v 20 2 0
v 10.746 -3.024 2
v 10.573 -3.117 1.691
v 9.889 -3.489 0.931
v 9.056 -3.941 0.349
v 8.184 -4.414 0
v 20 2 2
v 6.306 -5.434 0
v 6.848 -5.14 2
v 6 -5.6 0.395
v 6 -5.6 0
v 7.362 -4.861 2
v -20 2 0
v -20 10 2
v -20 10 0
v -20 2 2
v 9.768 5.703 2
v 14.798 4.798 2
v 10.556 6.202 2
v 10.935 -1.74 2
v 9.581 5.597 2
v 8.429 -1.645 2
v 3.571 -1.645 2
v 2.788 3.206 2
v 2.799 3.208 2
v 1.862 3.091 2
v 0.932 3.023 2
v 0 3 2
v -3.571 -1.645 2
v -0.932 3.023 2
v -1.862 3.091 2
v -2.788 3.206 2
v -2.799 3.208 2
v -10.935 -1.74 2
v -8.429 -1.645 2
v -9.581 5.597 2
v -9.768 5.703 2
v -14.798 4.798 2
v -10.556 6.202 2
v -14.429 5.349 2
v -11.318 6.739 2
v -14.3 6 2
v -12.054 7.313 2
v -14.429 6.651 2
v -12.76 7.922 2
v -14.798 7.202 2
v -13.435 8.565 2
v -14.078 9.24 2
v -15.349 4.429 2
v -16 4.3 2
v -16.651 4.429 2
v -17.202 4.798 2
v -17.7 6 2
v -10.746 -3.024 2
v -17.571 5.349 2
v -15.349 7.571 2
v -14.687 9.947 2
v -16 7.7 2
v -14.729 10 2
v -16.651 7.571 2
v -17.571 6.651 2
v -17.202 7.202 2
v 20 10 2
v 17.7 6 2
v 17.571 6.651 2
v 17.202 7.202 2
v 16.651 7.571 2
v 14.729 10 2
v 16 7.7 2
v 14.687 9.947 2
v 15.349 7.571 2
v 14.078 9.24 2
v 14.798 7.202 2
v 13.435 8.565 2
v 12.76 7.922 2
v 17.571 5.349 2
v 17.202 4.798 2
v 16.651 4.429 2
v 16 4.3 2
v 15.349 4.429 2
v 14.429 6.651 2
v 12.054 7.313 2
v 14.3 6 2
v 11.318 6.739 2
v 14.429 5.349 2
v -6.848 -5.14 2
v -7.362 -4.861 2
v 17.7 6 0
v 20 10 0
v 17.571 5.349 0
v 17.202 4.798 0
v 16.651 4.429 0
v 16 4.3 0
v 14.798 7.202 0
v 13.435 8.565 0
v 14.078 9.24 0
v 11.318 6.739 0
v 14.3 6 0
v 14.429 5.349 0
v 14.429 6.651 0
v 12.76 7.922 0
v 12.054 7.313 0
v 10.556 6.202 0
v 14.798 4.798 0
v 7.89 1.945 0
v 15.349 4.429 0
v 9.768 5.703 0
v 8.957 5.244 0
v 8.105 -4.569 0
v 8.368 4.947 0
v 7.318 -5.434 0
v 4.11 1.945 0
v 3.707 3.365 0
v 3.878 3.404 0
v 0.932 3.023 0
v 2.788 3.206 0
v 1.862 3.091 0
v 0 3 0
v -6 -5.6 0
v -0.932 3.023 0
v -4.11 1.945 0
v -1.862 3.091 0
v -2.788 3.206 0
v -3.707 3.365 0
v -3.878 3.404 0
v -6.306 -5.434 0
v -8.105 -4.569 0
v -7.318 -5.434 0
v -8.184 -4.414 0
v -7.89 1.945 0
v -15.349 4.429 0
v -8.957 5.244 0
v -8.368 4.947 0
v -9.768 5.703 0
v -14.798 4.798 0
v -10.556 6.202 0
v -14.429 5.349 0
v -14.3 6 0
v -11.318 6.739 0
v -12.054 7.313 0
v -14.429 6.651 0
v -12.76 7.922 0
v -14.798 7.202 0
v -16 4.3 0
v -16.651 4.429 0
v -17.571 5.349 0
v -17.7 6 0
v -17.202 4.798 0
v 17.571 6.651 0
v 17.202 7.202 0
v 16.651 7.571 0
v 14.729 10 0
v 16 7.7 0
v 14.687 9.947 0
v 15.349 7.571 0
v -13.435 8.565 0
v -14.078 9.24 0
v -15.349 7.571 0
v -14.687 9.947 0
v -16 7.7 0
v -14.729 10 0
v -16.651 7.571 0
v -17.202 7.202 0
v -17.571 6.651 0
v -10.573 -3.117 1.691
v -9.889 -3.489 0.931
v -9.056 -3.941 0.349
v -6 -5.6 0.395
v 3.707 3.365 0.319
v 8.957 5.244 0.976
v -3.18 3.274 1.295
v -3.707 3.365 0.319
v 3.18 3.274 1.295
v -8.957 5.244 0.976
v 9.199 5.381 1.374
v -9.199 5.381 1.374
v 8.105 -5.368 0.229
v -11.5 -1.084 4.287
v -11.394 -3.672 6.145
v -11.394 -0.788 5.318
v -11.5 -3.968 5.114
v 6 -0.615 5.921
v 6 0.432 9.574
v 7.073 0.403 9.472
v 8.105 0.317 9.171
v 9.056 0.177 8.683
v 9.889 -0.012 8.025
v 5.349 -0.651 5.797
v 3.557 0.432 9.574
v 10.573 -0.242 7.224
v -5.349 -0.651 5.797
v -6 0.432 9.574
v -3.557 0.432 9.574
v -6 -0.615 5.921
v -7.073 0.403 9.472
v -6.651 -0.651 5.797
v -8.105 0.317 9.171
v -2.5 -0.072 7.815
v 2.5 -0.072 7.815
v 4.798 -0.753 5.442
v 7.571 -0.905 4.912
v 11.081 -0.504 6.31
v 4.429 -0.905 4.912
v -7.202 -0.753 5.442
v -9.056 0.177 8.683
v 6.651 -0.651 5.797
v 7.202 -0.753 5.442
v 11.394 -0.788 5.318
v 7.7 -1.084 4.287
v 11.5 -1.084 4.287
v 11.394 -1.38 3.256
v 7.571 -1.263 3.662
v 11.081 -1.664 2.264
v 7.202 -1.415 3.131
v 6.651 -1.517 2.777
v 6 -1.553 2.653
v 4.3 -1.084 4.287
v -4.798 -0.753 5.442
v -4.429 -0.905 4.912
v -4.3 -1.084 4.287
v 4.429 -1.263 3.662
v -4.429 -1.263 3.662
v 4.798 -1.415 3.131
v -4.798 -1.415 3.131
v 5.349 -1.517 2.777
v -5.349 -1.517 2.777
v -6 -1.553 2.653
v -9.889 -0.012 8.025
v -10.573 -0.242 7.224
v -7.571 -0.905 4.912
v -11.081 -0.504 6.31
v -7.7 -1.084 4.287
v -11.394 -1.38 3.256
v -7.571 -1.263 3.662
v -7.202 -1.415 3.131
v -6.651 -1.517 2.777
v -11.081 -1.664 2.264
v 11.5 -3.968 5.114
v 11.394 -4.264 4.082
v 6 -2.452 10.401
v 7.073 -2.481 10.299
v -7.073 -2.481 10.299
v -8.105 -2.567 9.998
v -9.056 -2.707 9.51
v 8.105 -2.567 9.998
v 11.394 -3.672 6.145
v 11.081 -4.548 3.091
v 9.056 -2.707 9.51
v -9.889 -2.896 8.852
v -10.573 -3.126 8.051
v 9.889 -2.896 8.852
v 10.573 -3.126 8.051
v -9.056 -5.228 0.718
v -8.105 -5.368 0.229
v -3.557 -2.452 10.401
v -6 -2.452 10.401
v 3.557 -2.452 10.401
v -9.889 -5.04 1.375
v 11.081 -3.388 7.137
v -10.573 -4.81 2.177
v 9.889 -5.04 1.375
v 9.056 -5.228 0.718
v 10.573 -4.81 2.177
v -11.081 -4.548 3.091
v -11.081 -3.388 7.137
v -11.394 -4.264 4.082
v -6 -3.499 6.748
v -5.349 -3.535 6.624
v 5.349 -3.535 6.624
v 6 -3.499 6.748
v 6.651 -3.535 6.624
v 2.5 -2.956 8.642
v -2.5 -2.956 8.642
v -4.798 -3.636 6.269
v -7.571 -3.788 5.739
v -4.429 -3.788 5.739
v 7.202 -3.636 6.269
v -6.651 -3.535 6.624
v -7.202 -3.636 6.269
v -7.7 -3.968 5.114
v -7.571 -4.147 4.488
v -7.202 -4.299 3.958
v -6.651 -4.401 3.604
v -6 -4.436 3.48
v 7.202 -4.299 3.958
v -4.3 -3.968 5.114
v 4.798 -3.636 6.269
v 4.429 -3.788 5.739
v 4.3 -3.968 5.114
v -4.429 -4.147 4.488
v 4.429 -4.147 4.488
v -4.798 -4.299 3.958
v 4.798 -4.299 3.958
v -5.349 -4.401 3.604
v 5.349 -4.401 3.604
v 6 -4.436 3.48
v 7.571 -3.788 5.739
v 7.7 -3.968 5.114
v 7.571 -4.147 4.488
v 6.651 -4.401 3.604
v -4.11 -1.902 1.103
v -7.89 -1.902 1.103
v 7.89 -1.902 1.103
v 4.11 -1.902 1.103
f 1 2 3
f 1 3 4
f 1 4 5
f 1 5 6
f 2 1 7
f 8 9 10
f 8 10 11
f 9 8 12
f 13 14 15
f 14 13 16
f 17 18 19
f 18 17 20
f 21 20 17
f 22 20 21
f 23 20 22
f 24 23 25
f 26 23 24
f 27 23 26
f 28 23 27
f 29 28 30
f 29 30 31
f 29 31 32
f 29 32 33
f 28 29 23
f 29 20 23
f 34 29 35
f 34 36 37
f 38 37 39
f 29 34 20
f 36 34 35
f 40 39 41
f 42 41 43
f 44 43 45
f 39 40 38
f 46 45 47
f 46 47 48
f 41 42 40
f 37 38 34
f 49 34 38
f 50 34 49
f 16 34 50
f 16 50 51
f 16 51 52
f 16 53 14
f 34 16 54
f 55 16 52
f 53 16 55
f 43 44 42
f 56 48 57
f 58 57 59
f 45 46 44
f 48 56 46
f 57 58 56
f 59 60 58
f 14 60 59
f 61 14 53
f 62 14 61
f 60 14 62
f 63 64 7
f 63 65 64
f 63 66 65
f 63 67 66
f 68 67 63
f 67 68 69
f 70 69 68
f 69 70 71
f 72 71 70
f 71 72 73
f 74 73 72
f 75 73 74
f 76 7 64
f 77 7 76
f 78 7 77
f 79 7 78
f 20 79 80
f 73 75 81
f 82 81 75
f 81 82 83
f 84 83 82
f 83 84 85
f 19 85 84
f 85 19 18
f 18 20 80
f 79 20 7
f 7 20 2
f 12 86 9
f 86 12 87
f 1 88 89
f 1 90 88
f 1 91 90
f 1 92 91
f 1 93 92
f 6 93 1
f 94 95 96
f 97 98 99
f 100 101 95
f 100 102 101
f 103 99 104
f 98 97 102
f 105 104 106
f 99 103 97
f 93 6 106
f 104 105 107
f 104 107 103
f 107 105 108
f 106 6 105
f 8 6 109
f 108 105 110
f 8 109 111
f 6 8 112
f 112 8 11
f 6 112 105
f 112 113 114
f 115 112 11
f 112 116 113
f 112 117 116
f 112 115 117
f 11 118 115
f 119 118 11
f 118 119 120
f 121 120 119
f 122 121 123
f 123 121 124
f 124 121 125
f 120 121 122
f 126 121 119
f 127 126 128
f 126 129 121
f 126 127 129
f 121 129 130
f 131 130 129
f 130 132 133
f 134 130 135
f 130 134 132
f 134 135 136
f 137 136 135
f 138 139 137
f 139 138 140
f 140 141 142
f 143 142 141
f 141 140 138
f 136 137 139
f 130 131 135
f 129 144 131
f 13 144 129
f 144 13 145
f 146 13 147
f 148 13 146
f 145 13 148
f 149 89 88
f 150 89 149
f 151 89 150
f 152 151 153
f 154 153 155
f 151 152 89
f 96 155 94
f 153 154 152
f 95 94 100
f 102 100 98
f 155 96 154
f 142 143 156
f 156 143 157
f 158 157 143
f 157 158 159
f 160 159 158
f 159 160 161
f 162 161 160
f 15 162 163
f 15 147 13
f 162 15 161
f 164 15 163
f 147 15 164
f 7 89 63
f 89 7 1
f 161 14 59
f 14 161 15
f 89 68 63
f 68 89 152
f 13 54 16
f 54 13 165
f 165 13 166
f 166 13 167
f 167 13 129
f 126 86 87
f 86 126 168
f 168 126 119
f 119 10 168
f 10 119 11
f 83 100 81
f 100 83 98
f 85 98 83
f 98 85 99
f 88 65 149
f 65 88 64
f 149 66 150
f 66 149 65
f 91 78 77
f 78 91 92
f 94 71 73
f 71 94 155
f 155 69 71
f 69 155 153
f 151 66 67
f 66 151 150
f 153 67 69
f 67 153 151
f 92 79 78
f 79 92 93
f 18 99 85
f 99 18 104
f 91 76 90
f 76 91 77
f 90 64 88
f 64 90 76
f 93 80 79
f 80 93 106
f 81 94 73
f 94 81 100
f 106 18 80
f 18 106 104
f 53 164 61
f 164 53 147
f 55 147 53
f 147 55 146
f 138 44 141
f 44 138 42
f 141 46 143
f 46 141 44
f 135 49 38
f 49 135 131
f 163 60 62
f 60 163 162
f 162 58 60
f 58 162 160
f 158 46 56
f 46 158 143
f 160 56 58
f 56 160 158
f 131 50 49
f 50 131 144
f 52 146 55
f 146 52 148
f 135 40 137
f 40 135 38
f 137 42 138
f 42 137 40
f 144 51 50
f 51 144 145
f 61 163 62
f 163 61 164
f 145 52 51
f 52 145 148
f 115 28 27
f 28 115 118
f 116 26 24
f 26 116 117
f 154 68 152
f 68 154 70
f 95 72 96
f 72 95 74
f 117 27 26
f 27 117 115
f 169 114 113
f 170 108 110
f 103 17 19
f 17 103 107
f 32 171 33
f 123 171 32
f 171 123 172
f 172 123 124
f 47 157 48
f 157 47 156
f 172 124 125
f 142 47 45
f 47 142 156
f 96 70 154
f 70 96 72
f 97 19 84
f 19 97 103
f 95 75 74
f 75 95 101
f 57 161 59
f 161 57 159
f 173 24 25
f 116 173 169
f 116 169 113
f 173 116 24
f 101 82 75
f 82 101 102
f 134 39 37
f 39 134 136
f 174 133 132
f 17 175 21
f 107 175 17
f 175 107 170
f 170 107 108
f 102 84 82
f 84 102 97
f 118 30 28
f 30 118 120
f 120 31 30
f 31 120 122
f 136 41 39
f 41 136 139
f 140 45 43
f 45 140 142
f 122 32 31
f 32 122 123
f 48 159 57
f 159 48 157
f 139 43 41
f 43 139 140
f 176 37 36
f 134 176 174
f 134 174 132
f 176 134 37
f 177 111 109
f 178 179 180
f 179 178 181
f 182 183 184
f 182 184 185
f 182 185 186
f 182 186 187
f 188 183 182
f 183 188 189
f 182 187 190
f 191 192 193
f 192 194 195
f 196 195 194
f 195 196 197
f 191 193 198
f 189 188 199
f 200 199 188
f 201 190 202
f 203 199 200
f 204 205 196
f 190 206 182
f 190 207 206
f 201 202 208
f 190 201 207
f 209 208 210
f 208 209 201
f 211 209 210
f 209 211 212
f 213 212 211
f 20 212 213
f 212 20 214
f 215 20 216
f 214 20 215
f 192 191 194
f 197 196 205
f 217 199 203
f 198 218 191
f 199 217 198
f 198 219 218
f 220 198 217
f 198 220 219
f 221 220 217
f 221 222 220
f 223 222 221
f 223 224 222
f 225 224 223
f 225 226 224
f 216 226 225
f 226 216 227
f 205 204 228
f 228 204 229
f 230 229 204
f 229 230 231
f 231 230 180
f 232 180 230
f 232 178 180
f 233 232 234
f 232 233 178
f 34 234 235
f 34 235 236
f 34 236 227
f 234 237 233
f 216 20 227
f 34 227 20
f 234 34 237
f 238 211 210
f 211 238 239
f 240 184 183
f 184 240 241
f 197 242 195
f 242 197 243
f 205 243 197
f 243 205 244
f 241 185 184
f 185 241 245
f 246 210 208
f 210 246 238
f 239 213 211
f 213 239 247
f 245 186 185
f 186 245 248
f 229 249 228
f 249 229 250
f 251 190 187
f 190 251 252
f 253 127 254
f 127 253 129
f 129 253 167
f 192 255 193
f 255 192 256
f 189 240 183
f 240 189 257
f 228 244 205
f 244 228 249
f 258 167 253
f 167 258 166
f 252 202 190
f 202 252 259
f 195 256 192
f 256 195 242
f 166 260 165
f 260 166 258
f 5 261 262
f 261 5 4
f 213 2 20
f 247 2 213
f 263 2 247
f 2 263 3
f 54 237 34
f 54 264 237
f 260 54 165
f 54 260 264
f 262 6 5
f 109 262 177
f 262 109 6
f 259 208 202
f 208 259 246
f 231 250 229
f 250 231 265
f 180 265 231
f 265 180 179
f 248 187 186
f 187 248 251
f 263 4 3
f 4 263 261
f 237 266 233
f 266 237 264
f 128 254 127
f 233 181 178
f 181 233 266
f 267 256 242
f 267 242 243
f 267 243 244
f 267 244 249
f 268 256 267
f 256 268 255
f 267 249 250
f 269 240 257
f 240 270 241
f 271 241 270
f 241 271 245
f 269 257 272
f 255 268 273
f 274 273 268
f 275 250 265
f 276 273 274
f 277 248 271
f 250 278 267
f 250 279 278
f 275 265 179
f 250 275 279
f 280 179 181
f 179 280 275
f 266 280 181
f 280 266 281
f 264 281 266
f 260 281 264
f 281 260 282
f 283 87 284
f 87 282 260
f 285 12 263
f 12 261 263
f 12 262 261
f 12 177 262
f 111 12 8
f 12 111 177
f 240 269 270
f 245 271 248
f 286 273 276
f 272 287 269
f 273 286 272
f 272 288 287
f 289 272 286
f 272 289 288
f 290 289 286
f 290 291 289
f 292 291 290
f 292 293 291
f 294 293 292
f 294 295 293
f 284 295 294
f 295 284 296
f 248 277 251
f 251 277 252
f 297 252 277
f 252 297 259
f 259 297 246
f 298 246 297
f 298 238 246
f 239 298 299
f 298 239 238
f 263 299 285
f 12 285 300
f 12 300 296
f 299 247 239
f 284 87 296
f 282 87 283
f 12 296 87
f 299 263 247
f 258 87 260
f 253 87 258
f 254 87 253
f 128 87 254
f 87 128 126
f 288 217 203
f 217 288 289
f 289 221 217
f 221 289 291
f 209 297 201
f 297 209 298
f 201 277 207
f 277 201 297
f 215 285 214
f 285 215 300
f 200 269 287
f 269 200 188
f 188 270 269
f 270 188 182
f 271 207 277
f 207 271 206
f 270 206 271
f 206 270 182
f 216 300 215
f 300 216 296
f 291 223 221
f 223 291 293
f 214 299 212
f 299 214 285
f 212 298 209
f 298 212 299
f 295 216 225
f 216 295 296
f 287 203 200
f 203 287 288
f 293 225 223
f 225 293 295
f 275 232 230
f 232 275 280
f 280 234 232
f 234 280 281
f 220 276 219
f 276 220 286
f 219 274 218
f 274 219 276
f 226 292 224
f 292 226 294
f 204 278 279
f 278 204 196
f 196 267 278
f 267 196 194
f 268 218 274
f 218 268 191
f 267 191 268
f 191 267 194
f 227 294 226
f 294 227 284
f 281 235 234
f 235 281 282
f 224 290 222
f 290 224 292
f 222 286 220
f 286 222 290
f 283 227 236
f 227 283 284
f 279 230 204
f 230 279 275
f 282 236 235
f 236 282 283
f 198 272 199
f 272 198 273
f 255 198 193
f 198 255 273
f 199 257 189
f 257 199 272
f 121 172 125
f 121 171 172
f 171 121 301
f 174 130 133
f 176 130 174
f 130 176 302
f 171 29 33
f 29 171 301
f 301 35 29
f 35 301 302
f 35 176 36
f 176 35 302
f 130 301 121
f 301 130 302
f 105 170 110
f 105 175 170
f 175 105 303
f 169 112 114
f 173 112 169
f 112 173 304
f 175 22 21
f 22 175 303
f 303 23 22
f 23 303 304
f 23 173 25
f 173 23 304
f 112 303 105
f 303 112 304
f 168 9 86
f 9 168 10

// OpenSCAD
use <MCAD/metric_fastners.scad>

MosquitoCorrection = 5.6;
OtherMosquitoCorrection = MosquitoCorrection;

// Print cooling fan holder

FanWidth = 40;
FanSideLength = 6;
FanHoleSpacing = 32;
EffectorSideLength = 5.5;
EffectorHoleSpacing = 12;
EffectorHolePadRadius = 5.5;
JoinWidth = 12;
FanSideThickness = 2;
EffectorSideThickness = 3;
M3Radius = 1.7;
Angle = 74;

FanHoleInset = (FanWidth-FanHoleSpacing)/2;

// Cube centred in X and Y but not Z
module cubeC(x,y,z) {
	translate([-x/2,-y/2,0]) cube([x,y,z]);
}

module FanMount() {
	difference() {
		linear_extrude(height=FanSideThickness) {
			hull() {
				translate([-FanWidth/2,FanSideLength - FanHoleInset,0])
					square([FanWidth,2 * FanHoleInset]);
				translate([-JoinWidth/2,-MosquitoCorrection,0])
					square([JoinWidth,0.1]);
			}
		}
		translate([FanHoleSpacing/2, FanSideLength, -1])
			cylinder(r=M3Radius, h=FanSideThickness+2, $fn=16);
		translate([-FanHoleSpacing/2, FanSideLength, -1])
			cylinder(r=M3Radius, h=FanSideThickness+2, $fn=16);
		translate([0, FanSideLength + FanWidth/2 - FanHoleInset, -1])
			cylinder(r=FanWidth/2 - 1, h=FanSideThickness+2, $fn=128);
	}
}

module EffectorMount() {
	difference() {
		linear_extrude(height = EffectorSideThickness) {
			hull() {
				translate([-EffectorHoleSpacing/2,EffectorSideLength])
					circle(r=EffectorHolePadRadius, $fn=32);
				translate([EffectorHoleSpacing/2,EffectorSideLength])
					circle(r=EffectorHolePadRadius, $fn=32);
				translate([-JoinWidth/2,0]) square([JoinWidth,EffectorSideLength]);
			}
		}
		translate([EffectorHoleSpacing/2, EffectorSideLength, -1])
			cylinder(r=M3Radius, h=EffectorSideThickness+2, $fn=16);
		translate([-EffectorHoleSpacing/2, EffectorSideLength, -1])
			cylinder(r=M3Radius, h=EffectorSideThickness+2, $fn=16);
		translate([0,EffectorSideLength + 8, -1])
			cylinder(r=5,h=EffectorSideThickness+2, $fn=6);
	}
}

module Thing() {
	difference() {
		union() {
			FanMount();
			translate([0,EffectorSideThickness-OtherMosquitoCorrection,-1]) rotate([Angle,0,0]) EffectorMount();
		}
		translate([-FanWidth/2-1,-OtherMosquitoCorrection-0.4,-1])
			rotate([Angle,0,0])
				cube([FanWidth+2,EffectorSideLength + 50,FanSideThickness+1]);
		translate([-25, -25, -3])
			cube([50, 50, 3]);

		for (x_pos=[-6, 6])
		{
			translate([x_pos, -1, 4.25])
			rotate([180+Angle,0,0])
			scale([1.4, 1.4, 1])
			cylinder(r=1.8*3/2, h=10, $fn=6);
		}
	}
}

Thing();
